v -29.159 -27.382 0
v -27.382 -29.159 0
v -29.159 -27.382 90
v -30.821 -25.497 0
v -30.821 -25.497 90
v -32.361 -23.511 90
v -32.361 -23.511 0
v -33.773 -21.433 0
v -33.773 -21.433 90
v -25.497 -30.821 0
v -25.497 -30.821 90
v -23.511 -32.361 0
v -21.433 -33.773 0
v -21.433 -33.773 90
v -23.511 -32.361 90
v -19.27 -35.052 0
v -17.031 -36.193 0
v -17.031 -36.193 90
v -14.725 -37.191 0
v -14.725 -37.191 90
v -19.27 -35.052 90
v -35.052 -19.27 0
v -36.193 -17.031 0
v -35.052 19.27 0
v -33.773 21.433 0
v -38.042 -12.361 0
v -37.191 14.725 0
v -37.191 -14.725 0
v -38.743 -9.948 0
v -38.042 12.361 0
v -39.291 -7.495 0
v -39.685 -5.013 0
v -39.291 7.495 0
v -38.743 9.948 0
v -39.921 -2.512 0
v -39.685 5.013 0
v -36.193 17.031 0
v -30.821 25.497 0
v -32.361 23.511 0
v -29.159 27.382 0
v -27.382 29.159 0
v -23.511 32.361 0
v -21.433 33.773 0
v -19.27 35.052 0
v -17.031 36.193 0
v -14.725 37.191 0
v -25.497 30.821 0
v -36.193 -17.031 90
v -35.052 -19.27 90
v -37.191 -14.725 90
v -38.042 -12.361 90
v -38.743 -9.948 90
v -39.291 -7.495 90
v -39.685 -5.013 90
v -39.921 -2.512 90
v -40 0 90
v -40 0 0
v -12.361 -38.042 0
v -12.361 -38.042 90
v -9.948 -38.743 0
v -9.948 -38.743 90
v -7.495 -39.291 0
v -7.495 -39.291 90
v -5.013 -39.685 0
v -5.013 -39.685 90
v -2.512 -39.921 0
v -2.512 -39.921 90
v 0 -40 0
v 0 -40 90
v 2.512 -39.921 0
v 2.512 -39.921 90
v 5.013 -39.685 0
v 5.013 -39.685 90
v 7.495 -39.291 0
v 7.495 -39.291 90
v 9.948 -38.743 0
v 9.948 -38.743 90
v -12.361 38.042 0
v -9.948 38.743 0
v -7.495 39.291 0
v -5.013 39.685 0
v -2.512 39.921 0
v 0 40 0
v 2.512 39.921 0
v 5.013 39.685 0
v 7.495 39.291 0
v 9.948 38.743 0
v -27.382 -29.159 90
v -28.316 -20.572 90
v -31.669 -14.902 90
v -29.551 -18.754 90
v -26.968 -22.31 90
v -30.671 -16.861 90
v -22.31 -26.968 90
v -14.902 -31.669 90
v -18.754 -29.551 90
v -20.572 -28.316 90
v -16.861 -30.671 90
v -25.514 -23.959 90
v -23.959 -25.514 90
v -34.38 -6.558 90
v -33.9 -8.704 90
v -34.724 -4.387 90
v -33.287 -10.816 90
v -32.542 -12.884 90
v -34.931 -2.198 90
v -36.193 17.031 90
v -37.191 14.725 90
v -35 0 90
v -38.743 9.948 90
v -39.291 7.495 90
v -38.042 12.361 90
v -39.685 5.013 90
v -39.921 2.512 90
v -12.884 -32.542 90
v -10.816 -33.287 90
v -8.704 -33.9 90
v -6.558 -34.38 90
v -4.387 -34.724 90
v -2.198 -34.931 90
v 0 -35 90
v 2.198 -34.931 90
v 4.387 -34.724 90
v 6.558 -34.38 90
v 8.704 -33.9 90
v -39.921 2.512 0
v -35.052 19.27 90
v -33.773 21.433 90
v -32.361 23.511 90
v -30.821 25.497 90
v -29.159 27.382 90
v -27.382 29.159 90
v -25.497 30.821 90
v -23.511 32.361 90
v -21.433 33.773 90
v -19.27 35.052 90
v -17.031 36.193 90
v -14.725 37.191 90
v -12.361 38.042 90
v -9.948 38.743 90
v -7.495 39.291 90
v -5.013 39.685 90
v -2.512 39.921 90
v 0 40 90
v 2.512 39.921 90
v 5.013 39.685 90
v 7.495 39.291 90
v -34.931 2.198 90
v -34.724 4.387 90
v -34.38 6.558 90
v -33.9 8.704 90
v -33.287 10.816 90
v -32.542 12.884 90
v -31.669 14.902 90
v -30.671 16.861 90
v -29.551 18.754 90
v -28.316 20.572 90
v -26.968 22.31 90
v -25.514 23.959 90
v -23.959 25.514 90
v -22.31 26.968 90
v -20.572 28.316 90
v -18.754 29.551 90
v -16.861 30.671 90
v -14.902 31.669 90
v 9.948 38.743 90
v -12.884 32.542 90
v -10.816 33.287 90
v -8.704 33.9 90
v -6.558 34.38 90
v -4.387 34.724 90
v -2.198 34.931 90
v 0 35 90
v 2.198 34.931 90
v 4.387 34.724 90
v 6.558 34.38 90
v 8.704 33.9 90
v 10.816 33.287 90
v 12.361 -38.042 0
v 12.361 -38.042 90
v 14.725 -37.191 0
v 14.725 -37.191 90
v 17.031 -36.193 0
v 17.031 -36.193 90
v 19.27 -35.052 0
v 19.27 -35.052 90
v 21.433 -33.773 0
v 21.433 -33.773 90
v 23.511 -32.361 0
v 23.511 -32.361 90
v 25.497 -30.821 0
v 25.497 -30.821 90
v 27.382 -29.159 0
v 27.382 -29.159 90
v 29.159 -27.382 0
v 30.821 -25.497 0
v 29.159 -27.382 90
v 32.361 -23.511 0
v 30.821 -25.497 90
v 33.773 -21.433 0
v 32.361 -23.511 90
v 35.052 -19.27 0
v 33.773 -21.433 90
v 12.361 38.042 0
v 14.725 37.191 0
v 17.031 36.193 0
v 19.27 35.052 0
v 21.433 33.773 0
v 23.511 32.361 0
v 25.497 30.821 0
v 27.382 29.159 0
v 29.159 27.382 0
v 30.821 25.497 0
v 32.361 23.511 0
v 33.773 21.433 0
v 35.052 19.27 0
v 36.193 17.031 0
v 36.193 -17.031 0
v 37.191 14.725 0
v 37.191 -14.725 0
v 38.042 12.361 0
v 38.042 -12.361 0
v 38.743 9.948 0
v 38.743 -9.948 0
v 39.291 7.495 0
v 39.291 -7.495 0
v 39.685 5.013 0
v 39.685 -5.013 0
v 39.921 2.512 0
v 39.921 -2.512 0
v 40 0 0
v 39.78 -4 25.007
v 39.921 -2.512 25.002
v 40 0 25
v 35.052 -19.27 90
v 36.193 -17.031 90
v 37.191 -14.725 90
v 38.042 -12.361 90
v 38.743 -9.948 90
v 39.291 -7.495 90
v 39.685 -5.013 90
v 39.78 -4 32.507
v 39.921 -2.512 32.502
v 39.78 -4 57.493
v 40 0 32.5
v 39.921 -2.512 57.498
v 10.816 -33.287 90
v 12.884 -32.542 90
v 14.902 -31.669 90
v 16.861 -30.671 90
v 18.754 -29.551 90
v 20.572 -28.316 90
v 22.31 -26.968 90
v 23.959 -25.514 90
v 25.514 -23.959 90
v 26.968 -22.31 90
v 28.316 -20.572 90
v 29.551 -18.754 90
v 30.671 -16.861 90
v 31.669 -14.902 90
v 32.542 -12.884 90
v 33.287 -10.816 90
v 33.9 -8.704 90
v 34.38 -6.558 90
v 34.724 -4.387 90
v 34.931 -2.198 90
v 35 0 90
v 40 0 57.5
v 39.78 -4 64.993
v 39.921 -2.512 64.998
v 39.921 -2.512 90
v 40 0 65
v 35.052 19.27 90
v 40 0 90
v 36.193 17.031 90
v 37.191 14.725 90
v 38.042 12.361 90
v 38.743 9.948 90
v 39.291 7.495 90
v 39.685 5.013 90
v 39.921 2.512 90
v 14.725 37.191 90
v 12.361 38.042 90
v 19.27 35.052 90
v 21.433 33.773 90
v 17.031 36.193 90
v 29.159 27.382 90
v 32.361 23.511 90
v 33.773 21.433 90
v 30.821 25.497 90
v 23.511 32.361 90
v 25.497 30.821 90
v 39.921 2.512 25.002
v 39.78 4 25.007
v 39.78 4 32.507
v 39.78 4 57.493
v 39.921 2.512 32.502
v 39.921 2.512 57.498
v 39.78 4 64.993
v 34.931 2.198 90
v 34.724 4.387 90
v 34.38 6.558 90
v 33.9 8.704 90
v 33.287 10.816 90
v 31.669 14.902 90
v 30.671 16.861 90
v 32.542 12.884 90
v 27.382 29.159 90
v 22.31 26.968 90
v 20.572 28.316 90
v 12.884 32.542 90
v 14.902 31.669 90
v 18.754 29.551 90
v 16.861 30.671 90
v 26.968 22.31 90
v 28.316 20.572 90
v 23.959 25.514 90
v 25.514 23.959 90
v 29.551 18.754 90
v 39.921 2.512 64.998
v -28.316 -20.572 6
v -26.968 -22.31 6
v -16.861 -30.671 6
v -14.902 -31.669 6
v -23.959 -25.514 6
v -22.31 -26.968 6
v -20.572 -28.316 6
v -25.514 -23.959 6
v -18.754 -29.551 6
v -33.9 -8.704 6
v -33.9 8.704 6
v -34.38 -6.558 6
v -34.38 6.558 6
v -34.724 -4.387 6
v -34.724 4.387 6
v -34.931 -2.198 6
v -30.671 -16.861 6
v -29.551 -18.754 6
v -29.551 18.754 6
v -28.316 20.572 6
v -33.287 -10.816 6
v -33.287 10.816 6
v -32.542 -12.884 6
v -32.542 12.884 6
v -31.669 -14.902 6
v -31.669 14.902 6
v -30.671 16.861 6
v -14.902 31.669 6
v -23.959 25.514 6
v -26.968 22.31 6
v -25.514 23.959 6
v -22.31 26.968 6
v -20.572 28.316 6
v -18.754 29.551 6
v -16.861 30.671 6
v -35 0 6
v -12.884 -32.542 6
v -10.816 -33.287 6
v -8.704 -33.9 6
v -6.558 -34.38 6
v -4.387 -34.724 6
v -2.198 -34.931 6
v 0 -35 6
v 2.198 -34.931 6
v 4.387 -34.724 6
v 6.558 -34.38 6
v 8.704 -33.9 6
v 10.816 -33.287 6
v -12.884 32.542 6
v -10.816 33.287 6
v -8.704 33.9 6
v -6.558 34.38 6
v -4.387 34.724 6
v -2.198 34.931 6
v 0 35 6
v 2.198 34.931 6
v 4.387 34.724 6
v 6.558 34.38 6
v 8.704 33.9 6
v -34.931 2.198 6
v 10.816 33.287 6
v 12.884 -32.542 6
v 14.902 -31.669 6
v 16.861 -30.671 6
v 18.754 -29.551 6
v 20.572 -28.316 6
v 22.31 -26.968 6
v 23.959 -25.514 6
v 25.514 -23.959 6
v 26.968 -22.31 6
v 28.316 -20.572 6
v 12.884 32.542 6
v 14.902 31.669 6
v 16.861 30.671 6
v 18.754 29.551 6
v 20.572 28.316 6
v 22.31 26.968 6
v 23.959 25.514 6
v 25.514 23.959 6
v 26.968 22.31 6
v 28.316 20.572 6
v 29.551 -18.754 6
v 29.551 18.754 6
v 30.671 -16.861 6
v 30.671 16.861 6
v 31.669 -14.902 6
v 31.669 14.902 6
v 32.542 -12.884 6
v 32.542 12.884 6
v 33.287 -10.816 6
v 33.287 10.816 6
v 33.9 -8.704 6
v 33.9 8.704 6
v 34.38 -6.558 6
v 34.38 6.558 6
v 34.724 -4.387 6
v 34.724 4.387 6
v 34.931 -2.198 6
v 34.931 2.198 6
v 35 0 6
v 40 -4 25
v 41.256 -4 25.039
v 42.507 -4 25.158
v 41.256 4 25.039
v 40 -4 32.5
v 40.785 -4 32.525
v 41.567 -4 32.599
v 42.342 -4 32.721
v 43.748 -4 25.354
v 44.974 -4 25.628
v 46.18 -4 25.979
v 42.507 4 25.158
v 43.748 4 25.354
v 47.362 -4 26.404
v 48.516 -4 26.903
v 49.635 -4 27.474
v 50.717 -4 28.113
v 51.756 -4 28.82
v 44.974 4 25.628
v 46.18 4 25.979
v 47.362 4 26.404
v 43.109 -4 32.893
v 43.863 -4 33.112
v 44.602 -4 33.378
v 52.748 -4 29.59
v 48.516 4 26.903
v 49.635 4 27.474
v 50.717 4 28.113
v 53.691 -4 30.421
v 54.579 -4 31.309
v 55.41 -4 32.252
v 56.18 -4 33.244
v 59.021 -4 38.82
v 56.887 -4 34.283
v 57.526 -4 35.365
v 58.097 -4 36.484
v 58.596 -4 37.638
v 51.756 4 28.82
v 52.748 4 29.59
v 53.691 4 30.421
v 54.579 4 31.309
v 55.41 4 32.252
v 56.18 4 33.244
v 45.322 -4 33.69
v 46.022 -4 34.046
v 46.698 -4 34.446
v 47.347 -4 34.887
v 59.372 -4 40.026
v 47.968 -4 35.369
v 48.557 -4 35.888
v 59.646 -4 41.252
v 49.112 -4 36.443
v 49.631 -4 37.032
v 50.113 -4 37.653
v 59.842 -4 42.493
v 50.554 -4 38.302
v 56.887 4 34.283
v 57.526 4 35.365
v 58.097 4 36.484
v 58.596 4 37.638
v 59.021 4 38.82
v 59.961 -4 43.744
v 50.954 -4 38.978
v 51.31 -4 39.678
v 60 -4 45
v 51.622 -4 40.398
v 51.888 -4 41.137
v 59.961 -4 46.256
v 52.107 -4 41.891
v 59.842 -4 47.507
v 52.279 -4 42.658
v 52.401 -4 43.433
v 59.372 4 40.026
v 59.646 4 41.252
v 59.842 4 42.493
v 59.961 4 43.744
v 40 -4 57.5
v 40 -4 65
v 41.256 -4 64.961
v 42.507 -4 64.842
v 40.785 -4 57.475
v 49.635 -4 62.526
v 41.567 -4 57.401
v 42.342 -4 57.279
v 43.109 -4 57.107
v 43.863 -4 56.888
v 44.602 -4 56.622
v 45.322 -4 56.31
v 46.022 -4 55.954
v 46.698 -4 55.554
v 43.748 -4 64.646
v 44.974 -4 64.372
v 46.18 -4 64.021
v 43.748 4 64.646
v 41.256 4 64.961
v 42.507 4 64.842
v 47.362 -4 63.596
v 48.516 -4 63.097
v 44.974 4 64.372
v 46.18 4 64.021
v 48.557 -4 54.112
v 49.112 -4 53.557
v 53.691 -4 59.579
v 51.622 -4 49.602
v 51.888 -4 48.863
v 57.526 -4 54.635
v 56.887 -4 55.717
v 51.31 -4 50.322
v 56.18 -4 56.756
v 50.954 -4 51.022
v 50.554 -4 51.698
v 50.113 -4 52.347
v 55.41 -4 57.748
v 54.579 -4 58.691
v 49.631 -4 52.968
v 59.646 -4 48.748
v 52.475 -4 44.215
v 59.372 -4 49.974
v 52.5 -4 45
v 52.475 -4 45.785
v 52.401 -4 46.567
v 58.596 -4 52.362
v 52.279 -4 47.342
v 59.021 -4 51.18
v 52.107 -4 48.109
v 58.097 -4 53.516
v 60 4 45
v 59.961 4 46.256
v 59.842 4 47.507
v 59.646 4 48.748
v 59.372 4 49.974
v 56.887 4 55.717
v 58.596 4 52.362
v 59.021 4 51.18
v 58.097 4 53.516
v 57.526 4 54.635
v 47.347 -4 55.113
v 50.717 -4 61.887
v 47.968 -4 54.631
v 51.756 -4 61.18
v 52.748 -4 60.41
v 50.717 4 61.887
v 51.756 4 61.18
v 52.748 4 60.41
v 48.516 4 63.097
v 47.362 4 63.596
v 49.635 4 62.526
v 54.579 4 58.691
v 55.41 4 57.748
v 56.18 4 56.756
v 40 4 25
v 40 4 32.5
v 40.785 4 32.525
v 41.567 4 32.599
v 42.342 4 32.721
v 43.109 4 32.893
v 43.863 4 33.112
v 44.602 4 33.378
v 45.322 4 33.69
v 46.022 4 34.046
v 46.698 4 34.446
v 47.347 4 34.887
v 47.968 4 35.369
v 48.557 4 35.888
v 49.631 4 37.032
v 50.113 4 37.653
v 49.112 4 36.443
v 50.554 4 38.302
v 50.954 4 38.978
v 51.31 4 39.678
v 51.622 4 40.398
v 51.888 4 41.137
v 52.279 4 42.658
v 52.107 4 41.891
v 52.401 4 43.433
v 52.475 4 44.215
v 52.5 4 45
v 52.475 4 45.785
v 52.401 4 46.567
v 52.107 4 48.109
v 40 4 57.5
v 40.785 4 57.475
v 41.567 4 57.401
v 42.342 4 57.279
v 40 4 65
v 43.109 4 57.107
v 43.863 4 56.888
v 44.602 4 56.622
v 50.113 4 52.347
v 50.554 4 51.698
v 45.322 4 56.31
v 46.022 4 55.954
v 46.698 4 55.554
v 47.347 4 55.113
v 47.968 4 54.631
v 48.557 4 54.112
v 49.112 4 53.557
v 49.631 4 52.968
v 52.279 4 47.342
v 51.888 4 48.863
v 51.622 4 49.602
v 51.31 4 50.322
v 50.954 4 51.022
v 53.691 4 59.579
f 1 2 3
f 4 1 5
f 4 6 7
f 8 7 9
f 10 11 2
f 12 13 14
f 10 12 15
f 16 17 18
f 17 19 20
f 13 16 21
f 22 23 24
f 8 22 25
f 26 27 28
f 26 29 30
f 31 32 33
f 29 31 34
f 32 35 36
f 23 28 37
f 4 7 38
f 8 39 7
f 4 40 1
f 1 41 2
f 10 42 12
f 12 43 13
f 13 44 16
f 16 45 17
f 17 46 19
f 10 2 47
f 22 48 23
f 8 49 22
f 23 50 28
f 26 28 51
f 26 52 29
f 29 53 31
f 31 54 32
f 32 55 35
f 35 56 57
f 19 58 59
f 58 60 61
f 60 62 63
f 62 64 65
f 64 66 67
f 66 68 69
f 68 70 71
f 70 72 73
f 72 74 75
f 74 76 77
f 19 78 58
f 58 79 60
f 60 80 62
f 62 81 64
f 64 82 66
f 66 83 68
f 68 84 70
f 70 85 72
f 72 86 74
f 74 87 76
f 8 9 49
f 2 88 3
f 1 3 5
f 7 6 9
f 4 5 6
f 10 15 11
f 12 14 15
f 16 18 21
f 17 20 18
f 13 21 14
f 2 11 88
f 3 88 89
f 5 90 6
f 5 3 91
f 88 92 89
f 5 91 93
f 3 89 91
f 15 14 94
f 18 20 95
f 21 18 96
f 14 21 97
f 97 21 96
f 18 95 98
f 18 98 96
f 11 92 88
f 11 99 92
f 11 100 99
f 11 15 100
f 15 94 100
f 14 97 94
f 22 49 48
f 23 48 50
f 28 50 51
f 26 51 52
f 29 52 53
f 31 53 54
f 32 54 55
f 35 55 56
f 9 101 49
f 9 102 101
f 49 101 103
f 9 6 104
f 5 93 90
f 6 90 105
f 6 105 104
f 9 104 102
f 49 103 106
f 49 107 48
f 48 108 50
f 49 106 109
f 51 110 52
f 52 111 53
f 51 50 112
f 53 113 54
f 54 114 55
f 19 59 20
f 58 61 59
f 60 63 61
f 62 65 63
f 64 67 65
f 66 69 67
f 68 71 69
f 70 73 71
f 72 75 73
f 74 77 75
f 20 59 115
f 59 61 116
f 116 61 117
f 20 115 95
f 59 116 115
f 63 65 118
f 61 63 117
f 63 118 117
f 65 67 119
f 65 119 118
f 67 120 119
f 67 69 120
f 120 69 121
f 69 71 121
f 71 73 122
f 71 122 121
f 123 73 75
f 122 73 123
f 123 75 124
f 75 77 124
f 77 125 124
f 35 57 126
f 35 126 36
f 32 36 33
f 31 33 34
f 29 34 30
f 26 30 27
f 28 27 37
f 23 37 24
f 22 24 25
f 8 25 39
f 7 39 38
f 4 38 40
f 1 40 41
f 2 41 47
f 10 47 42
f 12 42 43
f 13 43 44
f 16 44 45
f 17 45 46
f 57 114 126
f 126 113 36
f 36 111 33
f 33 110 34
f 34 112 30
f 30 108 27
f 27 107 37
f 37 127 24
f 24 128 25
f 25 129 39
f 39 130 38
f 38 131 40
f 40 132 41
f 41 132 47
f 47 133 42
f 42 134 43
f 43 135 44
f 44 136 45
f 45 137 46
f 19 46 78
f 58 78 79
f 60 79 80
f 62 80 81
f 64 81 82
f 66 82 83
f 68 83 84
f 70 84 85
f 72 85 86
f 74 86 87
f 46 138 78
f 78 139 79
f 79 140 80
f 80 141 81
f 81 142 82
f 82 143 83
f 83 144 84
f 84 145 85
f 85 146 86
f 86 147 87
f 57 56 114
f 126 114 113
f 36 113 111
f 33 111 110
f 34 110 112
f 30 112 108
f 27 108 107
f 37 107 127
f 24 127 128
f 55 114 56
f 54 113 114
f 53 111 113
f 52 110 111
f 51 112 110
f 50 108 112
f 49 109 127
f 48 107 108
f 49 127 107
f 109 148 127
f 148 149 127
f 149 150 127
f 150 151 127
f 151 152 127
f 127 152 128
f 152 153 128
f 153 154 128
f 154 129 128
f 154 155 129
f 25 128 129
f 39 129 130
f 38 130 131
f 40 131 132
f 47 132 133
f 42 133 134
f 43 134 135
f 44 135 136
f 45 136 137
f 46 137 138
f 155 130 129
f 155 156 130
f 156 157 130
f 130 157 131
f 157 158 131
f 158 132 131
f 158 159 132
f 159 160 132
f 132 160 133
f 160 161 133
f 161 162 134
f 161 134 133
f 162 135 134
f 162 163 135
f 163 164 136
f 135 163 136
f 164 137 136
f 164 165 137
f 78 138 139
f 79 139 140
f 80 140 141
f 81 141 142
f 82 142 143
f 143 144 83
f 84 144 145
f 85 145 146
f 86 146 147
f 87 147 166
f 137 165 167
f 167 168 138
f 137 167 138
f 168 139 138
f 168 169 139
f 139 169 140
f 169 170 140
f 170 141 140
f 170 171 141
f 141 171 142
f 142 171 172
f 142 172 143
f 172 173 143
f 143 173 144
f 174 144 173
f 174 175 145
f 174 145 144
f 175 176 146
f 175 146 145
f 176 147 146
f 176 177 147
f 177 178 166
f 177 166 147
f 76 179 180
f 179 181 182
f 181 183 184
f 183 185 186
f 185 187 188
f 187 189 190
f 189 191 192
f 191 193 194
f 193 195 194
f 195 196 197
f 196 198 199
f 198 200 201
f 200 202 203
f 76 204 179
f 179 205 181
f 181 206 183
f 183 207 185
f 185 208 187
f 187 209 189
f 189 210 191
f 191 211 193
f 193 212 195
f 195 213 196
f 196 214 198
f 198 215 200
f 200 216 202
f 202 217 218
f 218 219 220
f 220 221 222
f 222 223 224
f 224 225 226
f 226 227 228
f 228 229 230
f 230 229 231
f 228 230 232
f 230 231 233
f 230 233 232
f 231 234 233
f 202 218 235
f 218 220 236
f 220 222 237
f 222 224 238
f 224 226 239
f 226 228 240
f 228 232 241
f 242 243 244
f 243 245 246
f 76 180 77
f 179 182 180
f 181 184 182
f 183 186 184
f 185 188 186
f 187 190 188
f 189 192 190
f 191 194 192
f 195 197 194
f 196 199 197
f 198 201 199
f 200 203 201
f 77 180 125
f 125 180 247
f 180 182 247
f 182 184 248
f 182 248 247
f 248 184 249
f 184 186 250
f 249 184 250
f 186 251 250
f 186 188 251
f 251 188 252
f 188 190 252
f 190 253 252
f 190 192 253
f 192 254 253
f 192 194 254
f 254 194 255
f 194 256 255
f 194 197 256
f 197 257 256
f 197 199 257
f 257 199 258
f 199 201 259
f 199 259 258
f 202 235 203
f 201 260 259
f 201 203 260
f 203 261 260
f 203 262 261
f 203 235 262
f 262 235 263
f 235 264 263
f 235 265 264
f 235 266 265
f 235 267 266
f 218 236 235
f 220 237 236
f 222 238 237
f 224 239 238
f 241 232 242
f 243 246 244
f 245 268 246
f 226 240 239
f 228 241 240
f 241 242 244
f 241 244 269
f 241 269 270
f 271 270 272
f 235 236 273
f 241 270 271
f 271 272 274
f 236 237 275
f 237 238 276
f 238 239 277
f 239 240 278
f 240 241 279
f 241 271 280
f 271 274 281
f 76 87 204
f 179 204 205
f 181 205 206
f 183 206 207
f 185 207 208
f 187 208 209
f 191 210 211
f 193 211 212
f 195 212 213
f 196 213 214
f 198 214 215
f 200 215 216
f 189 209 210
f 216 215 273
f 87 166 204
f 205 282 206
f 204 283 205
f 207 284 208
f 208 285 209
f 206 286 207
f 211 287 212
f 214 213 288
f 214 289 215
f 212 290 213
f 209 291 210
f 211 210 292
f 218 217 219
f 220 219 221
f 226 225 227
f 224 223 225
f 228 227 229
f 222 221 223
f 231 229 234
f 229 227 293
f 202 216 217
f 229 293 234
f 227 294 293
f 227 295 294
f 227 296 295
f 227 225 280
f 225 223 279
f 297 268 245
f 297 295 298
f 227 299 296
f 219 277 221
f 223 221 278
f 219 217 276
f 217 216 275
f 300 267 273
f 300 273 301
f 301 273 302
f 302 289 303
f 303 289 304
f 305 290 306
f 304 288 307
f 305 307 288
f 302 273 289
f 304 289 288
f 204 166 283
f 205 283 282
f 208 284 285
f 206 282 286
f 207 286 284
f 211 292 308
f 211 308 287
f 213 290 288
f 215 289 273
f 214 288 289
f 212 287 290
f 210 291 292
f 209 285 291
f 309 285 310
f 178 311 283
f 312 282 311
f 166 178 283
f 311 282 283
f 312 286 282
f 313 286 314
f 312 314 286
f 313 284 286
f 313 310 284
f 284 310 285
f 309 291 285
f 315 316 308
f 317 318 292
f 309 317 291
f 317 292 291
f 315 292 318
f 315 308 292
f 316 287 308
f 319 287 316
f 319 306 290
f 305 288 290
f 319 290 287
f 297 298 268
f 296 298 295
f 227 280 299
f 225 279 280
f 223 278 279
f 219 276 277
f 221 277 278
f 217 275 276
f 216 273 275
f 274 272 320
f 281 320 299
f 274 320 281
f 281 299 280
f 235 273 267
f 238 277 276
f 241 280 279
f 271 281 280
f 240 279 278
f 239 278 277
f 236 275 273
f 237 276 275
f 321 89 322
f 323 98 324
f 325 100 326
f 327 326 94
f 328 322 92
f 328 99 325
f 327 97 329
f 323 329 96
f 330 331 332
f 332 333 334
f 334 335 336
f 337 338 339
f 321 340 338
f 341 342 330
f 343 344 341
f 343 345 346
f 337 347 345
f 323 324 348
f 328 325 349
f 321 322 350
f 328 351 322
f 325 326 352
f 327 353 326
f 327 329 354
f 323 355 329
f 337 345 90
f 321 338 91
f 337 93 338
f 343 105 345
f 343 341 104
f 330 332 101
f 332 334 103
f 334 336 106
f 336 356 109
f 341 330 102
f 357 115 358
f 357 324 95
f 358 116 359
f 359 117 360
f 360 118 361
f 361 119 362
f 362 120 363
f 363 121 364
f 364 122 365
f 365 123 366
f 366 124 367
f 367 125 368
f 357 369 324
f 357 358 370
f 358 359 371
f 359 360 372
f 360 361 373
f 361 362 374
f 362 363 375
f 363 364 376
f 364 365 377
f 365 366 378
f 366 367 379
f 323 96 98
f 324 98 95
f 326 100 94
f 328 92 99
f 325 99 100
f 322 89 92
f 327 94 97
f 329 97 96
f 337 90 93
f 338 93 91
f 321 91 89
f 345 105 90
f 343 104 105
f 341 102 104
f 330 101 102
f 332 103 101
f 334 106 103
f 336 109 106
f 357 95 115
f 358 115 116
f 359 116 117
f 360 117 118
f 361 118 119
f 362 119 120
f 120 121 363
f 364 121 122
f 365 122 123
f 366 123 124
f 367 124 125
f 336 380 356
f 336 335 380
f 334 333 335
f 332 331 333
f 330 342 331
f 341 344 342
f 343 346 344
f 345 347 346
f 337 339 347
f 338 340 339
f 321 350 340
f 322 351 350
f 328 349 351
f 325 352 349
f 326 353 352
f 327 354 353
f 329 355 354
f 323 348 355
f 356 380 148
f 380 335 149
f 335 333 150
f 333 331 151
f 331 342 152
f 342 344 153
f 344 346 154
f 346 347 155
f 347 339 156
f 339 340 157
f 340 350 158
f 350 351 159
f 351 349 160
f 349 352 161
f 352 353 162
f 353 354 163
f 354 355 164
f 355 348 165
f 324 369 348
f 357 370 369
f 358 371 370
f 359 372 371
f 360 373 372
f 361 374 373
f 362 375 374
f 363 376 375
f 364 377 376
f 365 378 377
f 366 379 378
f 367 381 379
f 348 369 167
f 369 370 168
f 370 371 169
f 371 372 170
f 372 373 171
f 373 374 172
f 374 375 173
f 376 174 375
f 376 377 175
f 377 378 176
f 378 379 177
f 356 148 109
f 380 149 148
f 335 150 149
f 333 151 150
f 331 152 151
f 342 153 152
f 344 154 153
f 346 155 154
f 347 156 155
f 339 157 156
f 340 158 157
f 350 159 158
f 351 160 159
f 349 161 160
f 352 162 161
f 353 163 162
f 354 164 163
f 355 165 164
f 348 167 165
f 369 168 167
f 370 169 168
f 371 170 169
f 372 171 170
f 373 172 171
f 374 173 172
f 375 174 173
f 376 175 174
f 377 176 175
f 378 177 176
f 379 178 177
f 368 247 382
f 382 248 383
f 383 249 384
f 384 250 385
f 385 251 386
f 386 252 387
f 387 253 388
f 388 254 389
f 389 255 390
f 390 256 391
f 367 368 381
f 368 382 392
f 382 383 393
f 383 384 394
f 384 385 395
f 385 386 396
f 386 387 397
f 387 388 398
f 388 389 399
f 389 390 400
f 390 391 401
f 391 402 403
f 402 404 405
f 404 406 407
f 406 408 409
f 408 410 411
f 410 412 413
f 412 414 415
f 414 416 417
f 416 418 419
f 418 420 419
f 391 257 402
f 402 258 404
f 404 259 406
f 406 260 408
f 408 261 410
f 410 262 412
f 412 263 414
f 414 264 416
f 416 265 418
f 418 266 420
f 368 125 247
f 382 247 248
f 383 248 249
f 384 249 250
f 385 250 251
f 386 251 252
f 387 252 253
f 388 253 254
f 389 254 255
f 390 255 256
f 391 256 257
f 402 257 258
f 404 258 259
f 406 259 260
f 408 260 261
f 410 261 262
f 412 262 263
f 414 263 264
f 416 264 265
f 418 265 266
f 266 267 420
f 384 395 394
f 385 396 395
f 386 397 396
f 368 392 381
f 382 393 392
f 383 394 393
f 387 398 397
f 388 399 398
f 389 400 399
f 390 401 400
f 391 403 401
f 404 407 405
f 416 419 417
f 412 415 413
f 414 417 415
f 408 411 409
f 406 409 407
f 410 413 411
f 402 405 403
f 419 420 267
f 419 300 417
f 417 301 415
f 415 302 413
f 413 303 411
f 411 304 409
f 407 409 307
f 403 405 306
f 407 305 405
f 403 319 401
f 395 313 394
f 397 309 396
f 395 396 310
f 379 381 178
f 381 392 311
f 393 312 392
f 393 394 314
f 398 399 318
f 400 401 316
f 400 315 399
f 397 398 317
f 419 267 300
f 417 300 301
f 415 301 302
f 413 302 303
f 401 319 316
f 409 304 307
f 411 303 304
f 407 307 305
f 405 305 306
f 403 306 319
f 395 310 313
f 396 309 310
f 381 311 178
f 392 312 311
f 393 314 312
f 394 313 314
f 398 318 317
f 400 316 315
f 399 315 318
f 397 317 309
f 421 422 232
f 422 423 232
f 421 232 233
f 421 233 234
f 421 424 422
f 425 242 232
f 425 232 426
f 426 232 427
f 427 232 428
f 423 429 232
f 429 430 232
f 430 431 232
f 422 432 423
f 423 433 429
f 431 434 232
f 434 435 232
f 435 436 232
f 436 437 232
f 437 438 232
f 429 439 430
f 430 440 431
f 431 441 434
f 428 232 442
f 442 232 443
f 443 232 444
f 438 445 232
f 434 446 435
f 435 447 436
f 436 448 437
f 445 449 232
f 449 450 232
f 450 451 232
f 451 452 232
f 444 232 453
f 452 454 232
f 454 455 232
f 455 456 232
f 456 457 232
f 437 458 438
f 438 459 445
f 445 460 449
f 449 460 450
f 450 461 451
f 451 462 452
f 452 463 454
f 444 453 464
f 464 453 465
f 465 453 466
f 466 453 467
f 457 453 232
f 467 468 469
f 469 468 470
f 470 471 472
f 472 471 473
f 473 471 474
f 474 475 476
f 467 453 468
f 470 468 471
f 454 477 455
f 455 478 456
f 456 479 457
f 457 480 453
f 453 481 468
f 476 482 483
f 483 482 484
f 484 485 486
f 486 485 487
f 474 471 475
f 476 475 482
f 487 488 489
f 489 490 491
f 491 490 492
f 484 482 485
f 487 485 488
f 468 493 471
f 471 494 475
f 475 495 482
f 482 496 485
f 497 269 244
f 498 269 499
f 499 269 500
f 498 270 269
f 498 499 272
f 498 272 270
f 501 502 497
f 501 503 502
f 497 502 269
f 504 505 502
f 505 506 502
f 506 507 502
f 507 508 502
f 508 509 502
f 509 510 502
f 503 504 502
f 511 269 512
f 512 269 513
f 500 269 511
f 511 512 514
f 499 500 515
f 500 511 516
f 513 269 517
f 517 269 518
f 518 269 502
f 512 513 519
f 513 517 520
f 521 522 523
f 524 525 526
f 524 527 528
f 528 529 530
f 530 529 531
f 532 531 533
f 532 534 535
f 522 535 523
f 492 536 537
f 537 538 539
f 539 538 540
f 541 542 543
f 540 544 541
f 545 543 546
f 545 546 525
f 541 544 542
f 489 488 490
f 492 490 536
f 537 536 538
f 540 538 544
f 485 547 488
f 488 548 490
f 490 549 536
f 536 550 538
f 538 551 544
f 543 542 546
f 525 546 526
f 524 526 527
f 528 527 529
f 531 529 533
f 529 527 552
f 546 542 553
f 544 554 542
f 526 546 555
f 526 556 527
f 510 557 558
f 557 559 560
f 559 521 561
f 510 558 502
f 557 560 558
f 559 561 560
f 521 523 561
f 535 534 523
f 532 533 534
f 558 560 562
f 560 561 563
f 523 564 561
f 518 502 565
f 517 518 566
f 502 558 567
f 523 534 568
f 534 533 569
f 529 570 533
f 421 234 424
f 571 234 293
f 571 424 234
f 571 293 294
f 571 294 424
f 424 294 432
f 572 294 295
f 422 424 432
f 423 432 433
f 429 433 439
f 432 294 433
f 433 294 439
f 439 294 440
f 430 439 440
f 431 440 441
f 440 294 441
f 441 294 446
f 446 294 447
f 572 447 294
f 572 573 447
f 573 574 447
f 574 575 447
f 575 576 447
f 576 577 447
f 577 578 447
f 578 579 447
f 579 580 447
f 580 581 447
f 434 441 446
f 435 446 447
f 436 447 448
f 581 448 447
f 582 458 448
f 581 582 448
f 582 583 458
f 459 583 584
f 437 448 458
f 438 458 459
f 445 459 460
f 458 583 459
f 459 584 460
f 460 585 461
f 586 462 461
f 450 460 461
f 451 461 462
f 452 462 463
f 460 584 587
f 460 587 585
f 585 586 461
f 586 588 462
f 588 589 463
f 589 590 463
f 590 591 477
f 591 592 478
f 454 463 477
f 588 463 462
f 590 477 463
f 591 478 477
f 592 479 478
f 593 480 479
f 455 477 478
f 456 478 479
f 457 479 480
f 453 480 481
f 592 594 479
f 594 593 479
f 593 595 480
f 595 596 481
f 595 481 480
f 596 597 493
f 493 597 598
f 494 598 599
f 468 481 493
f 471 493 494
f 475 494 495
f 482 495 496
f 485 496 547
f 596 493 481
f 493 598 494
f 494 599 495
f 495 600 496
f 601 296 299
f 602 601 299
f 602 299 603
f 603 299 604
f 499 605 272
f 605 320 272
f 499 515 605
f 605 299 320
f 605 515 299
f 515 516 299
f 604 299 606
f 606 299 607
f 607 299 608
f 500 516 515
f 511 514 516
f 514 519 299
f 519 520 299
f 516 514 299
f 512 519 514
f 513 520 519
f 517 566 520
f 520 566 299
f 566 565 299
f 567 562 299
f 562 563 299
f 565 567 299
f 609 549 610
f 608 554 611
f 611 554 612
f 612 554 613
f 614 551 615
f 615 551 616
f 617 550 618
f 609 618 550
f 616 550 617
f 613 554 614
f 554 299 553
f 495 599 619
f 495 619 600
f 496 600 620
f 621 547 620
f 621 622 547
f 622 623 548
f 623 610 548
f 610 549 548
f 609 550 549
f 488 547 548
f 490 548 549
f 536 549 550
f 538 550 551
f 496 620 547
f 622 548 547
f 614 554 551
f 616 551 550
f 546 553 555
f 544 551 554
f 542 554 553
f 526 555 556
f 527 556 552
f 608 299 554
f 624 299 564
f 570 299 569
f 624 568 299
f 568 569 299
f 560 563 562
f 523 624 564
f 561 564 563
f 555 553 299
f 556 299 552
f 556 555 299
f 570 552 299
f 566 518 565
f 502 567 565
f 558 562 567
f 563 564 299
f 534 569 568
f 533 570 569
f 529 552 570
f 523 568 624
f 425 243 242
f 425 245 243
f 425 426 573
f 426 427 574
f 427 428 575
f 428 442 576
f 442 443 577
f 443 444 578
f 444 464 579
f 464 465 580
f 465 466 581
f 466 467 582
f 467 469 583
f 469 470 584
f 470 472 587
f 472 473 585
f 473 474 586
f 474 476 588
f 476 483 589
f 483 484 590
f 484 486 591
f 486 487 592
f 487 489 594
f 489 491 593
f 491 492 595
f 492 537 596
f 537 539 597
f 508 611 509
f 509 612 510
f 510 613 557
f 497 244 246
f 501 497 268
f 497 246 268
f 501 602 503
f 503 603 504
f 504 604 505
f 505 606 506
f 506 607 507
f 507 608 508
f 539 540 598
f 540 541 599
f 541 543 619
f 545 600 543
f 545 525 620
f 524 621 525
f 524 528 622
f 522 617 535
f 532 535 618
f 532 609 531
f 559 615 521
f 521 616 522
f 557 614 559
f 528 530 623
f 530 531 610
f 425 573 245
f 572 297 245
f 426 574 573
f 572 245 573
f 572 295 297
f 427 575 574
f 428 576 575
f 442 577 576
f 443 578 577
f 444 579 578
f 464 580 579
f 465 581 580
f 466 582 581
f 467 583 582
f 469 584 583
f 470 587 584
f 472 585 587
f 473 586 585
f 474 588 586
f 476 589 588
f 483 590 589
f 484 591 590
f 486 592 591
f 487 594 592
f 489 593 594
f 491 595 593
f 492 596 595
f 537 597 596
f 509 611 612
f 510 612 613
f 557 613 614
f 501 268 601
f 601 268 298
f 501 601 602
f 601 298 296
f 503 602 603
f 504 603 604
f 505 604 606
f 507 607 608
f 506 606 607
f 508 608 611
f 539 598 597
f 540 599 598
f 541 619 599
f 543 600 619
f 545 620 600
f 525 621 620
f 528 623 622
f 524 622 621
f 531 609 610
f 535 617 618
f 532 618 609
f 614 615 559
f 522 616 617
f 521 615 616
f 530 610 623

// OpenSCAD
$fn = 100;

// マグカップ本体
difference() {
    // 外側の円筒
    cylinder(h = 90, r = 40, center = false);
    // 内側をくり抜く
    translate([0, 0, 6])
        cylinder(h = 90, r = 35, center = false);
}

// 取手
translate([40, 0, 45]) {
    difference() {
        // 取手の外形
        union() {
            // 半円部分
            rotate([90, 0, 0])
                cylinder(h = 8, r = 20, center = true);
            // 接続部分
            translate([-20, 0, 0])
                cube([20, 8, 40], center = true);
        }
        // 取手の穴
        rotate([90, 0, 0])
            cylinder(h = 10, r = 12.5, center = true);
        // マグ本体との重なり部分を削除
        translate([-45, 0, 0])
            cylinder(h = 100, r = 40, center = true);
    }
}
